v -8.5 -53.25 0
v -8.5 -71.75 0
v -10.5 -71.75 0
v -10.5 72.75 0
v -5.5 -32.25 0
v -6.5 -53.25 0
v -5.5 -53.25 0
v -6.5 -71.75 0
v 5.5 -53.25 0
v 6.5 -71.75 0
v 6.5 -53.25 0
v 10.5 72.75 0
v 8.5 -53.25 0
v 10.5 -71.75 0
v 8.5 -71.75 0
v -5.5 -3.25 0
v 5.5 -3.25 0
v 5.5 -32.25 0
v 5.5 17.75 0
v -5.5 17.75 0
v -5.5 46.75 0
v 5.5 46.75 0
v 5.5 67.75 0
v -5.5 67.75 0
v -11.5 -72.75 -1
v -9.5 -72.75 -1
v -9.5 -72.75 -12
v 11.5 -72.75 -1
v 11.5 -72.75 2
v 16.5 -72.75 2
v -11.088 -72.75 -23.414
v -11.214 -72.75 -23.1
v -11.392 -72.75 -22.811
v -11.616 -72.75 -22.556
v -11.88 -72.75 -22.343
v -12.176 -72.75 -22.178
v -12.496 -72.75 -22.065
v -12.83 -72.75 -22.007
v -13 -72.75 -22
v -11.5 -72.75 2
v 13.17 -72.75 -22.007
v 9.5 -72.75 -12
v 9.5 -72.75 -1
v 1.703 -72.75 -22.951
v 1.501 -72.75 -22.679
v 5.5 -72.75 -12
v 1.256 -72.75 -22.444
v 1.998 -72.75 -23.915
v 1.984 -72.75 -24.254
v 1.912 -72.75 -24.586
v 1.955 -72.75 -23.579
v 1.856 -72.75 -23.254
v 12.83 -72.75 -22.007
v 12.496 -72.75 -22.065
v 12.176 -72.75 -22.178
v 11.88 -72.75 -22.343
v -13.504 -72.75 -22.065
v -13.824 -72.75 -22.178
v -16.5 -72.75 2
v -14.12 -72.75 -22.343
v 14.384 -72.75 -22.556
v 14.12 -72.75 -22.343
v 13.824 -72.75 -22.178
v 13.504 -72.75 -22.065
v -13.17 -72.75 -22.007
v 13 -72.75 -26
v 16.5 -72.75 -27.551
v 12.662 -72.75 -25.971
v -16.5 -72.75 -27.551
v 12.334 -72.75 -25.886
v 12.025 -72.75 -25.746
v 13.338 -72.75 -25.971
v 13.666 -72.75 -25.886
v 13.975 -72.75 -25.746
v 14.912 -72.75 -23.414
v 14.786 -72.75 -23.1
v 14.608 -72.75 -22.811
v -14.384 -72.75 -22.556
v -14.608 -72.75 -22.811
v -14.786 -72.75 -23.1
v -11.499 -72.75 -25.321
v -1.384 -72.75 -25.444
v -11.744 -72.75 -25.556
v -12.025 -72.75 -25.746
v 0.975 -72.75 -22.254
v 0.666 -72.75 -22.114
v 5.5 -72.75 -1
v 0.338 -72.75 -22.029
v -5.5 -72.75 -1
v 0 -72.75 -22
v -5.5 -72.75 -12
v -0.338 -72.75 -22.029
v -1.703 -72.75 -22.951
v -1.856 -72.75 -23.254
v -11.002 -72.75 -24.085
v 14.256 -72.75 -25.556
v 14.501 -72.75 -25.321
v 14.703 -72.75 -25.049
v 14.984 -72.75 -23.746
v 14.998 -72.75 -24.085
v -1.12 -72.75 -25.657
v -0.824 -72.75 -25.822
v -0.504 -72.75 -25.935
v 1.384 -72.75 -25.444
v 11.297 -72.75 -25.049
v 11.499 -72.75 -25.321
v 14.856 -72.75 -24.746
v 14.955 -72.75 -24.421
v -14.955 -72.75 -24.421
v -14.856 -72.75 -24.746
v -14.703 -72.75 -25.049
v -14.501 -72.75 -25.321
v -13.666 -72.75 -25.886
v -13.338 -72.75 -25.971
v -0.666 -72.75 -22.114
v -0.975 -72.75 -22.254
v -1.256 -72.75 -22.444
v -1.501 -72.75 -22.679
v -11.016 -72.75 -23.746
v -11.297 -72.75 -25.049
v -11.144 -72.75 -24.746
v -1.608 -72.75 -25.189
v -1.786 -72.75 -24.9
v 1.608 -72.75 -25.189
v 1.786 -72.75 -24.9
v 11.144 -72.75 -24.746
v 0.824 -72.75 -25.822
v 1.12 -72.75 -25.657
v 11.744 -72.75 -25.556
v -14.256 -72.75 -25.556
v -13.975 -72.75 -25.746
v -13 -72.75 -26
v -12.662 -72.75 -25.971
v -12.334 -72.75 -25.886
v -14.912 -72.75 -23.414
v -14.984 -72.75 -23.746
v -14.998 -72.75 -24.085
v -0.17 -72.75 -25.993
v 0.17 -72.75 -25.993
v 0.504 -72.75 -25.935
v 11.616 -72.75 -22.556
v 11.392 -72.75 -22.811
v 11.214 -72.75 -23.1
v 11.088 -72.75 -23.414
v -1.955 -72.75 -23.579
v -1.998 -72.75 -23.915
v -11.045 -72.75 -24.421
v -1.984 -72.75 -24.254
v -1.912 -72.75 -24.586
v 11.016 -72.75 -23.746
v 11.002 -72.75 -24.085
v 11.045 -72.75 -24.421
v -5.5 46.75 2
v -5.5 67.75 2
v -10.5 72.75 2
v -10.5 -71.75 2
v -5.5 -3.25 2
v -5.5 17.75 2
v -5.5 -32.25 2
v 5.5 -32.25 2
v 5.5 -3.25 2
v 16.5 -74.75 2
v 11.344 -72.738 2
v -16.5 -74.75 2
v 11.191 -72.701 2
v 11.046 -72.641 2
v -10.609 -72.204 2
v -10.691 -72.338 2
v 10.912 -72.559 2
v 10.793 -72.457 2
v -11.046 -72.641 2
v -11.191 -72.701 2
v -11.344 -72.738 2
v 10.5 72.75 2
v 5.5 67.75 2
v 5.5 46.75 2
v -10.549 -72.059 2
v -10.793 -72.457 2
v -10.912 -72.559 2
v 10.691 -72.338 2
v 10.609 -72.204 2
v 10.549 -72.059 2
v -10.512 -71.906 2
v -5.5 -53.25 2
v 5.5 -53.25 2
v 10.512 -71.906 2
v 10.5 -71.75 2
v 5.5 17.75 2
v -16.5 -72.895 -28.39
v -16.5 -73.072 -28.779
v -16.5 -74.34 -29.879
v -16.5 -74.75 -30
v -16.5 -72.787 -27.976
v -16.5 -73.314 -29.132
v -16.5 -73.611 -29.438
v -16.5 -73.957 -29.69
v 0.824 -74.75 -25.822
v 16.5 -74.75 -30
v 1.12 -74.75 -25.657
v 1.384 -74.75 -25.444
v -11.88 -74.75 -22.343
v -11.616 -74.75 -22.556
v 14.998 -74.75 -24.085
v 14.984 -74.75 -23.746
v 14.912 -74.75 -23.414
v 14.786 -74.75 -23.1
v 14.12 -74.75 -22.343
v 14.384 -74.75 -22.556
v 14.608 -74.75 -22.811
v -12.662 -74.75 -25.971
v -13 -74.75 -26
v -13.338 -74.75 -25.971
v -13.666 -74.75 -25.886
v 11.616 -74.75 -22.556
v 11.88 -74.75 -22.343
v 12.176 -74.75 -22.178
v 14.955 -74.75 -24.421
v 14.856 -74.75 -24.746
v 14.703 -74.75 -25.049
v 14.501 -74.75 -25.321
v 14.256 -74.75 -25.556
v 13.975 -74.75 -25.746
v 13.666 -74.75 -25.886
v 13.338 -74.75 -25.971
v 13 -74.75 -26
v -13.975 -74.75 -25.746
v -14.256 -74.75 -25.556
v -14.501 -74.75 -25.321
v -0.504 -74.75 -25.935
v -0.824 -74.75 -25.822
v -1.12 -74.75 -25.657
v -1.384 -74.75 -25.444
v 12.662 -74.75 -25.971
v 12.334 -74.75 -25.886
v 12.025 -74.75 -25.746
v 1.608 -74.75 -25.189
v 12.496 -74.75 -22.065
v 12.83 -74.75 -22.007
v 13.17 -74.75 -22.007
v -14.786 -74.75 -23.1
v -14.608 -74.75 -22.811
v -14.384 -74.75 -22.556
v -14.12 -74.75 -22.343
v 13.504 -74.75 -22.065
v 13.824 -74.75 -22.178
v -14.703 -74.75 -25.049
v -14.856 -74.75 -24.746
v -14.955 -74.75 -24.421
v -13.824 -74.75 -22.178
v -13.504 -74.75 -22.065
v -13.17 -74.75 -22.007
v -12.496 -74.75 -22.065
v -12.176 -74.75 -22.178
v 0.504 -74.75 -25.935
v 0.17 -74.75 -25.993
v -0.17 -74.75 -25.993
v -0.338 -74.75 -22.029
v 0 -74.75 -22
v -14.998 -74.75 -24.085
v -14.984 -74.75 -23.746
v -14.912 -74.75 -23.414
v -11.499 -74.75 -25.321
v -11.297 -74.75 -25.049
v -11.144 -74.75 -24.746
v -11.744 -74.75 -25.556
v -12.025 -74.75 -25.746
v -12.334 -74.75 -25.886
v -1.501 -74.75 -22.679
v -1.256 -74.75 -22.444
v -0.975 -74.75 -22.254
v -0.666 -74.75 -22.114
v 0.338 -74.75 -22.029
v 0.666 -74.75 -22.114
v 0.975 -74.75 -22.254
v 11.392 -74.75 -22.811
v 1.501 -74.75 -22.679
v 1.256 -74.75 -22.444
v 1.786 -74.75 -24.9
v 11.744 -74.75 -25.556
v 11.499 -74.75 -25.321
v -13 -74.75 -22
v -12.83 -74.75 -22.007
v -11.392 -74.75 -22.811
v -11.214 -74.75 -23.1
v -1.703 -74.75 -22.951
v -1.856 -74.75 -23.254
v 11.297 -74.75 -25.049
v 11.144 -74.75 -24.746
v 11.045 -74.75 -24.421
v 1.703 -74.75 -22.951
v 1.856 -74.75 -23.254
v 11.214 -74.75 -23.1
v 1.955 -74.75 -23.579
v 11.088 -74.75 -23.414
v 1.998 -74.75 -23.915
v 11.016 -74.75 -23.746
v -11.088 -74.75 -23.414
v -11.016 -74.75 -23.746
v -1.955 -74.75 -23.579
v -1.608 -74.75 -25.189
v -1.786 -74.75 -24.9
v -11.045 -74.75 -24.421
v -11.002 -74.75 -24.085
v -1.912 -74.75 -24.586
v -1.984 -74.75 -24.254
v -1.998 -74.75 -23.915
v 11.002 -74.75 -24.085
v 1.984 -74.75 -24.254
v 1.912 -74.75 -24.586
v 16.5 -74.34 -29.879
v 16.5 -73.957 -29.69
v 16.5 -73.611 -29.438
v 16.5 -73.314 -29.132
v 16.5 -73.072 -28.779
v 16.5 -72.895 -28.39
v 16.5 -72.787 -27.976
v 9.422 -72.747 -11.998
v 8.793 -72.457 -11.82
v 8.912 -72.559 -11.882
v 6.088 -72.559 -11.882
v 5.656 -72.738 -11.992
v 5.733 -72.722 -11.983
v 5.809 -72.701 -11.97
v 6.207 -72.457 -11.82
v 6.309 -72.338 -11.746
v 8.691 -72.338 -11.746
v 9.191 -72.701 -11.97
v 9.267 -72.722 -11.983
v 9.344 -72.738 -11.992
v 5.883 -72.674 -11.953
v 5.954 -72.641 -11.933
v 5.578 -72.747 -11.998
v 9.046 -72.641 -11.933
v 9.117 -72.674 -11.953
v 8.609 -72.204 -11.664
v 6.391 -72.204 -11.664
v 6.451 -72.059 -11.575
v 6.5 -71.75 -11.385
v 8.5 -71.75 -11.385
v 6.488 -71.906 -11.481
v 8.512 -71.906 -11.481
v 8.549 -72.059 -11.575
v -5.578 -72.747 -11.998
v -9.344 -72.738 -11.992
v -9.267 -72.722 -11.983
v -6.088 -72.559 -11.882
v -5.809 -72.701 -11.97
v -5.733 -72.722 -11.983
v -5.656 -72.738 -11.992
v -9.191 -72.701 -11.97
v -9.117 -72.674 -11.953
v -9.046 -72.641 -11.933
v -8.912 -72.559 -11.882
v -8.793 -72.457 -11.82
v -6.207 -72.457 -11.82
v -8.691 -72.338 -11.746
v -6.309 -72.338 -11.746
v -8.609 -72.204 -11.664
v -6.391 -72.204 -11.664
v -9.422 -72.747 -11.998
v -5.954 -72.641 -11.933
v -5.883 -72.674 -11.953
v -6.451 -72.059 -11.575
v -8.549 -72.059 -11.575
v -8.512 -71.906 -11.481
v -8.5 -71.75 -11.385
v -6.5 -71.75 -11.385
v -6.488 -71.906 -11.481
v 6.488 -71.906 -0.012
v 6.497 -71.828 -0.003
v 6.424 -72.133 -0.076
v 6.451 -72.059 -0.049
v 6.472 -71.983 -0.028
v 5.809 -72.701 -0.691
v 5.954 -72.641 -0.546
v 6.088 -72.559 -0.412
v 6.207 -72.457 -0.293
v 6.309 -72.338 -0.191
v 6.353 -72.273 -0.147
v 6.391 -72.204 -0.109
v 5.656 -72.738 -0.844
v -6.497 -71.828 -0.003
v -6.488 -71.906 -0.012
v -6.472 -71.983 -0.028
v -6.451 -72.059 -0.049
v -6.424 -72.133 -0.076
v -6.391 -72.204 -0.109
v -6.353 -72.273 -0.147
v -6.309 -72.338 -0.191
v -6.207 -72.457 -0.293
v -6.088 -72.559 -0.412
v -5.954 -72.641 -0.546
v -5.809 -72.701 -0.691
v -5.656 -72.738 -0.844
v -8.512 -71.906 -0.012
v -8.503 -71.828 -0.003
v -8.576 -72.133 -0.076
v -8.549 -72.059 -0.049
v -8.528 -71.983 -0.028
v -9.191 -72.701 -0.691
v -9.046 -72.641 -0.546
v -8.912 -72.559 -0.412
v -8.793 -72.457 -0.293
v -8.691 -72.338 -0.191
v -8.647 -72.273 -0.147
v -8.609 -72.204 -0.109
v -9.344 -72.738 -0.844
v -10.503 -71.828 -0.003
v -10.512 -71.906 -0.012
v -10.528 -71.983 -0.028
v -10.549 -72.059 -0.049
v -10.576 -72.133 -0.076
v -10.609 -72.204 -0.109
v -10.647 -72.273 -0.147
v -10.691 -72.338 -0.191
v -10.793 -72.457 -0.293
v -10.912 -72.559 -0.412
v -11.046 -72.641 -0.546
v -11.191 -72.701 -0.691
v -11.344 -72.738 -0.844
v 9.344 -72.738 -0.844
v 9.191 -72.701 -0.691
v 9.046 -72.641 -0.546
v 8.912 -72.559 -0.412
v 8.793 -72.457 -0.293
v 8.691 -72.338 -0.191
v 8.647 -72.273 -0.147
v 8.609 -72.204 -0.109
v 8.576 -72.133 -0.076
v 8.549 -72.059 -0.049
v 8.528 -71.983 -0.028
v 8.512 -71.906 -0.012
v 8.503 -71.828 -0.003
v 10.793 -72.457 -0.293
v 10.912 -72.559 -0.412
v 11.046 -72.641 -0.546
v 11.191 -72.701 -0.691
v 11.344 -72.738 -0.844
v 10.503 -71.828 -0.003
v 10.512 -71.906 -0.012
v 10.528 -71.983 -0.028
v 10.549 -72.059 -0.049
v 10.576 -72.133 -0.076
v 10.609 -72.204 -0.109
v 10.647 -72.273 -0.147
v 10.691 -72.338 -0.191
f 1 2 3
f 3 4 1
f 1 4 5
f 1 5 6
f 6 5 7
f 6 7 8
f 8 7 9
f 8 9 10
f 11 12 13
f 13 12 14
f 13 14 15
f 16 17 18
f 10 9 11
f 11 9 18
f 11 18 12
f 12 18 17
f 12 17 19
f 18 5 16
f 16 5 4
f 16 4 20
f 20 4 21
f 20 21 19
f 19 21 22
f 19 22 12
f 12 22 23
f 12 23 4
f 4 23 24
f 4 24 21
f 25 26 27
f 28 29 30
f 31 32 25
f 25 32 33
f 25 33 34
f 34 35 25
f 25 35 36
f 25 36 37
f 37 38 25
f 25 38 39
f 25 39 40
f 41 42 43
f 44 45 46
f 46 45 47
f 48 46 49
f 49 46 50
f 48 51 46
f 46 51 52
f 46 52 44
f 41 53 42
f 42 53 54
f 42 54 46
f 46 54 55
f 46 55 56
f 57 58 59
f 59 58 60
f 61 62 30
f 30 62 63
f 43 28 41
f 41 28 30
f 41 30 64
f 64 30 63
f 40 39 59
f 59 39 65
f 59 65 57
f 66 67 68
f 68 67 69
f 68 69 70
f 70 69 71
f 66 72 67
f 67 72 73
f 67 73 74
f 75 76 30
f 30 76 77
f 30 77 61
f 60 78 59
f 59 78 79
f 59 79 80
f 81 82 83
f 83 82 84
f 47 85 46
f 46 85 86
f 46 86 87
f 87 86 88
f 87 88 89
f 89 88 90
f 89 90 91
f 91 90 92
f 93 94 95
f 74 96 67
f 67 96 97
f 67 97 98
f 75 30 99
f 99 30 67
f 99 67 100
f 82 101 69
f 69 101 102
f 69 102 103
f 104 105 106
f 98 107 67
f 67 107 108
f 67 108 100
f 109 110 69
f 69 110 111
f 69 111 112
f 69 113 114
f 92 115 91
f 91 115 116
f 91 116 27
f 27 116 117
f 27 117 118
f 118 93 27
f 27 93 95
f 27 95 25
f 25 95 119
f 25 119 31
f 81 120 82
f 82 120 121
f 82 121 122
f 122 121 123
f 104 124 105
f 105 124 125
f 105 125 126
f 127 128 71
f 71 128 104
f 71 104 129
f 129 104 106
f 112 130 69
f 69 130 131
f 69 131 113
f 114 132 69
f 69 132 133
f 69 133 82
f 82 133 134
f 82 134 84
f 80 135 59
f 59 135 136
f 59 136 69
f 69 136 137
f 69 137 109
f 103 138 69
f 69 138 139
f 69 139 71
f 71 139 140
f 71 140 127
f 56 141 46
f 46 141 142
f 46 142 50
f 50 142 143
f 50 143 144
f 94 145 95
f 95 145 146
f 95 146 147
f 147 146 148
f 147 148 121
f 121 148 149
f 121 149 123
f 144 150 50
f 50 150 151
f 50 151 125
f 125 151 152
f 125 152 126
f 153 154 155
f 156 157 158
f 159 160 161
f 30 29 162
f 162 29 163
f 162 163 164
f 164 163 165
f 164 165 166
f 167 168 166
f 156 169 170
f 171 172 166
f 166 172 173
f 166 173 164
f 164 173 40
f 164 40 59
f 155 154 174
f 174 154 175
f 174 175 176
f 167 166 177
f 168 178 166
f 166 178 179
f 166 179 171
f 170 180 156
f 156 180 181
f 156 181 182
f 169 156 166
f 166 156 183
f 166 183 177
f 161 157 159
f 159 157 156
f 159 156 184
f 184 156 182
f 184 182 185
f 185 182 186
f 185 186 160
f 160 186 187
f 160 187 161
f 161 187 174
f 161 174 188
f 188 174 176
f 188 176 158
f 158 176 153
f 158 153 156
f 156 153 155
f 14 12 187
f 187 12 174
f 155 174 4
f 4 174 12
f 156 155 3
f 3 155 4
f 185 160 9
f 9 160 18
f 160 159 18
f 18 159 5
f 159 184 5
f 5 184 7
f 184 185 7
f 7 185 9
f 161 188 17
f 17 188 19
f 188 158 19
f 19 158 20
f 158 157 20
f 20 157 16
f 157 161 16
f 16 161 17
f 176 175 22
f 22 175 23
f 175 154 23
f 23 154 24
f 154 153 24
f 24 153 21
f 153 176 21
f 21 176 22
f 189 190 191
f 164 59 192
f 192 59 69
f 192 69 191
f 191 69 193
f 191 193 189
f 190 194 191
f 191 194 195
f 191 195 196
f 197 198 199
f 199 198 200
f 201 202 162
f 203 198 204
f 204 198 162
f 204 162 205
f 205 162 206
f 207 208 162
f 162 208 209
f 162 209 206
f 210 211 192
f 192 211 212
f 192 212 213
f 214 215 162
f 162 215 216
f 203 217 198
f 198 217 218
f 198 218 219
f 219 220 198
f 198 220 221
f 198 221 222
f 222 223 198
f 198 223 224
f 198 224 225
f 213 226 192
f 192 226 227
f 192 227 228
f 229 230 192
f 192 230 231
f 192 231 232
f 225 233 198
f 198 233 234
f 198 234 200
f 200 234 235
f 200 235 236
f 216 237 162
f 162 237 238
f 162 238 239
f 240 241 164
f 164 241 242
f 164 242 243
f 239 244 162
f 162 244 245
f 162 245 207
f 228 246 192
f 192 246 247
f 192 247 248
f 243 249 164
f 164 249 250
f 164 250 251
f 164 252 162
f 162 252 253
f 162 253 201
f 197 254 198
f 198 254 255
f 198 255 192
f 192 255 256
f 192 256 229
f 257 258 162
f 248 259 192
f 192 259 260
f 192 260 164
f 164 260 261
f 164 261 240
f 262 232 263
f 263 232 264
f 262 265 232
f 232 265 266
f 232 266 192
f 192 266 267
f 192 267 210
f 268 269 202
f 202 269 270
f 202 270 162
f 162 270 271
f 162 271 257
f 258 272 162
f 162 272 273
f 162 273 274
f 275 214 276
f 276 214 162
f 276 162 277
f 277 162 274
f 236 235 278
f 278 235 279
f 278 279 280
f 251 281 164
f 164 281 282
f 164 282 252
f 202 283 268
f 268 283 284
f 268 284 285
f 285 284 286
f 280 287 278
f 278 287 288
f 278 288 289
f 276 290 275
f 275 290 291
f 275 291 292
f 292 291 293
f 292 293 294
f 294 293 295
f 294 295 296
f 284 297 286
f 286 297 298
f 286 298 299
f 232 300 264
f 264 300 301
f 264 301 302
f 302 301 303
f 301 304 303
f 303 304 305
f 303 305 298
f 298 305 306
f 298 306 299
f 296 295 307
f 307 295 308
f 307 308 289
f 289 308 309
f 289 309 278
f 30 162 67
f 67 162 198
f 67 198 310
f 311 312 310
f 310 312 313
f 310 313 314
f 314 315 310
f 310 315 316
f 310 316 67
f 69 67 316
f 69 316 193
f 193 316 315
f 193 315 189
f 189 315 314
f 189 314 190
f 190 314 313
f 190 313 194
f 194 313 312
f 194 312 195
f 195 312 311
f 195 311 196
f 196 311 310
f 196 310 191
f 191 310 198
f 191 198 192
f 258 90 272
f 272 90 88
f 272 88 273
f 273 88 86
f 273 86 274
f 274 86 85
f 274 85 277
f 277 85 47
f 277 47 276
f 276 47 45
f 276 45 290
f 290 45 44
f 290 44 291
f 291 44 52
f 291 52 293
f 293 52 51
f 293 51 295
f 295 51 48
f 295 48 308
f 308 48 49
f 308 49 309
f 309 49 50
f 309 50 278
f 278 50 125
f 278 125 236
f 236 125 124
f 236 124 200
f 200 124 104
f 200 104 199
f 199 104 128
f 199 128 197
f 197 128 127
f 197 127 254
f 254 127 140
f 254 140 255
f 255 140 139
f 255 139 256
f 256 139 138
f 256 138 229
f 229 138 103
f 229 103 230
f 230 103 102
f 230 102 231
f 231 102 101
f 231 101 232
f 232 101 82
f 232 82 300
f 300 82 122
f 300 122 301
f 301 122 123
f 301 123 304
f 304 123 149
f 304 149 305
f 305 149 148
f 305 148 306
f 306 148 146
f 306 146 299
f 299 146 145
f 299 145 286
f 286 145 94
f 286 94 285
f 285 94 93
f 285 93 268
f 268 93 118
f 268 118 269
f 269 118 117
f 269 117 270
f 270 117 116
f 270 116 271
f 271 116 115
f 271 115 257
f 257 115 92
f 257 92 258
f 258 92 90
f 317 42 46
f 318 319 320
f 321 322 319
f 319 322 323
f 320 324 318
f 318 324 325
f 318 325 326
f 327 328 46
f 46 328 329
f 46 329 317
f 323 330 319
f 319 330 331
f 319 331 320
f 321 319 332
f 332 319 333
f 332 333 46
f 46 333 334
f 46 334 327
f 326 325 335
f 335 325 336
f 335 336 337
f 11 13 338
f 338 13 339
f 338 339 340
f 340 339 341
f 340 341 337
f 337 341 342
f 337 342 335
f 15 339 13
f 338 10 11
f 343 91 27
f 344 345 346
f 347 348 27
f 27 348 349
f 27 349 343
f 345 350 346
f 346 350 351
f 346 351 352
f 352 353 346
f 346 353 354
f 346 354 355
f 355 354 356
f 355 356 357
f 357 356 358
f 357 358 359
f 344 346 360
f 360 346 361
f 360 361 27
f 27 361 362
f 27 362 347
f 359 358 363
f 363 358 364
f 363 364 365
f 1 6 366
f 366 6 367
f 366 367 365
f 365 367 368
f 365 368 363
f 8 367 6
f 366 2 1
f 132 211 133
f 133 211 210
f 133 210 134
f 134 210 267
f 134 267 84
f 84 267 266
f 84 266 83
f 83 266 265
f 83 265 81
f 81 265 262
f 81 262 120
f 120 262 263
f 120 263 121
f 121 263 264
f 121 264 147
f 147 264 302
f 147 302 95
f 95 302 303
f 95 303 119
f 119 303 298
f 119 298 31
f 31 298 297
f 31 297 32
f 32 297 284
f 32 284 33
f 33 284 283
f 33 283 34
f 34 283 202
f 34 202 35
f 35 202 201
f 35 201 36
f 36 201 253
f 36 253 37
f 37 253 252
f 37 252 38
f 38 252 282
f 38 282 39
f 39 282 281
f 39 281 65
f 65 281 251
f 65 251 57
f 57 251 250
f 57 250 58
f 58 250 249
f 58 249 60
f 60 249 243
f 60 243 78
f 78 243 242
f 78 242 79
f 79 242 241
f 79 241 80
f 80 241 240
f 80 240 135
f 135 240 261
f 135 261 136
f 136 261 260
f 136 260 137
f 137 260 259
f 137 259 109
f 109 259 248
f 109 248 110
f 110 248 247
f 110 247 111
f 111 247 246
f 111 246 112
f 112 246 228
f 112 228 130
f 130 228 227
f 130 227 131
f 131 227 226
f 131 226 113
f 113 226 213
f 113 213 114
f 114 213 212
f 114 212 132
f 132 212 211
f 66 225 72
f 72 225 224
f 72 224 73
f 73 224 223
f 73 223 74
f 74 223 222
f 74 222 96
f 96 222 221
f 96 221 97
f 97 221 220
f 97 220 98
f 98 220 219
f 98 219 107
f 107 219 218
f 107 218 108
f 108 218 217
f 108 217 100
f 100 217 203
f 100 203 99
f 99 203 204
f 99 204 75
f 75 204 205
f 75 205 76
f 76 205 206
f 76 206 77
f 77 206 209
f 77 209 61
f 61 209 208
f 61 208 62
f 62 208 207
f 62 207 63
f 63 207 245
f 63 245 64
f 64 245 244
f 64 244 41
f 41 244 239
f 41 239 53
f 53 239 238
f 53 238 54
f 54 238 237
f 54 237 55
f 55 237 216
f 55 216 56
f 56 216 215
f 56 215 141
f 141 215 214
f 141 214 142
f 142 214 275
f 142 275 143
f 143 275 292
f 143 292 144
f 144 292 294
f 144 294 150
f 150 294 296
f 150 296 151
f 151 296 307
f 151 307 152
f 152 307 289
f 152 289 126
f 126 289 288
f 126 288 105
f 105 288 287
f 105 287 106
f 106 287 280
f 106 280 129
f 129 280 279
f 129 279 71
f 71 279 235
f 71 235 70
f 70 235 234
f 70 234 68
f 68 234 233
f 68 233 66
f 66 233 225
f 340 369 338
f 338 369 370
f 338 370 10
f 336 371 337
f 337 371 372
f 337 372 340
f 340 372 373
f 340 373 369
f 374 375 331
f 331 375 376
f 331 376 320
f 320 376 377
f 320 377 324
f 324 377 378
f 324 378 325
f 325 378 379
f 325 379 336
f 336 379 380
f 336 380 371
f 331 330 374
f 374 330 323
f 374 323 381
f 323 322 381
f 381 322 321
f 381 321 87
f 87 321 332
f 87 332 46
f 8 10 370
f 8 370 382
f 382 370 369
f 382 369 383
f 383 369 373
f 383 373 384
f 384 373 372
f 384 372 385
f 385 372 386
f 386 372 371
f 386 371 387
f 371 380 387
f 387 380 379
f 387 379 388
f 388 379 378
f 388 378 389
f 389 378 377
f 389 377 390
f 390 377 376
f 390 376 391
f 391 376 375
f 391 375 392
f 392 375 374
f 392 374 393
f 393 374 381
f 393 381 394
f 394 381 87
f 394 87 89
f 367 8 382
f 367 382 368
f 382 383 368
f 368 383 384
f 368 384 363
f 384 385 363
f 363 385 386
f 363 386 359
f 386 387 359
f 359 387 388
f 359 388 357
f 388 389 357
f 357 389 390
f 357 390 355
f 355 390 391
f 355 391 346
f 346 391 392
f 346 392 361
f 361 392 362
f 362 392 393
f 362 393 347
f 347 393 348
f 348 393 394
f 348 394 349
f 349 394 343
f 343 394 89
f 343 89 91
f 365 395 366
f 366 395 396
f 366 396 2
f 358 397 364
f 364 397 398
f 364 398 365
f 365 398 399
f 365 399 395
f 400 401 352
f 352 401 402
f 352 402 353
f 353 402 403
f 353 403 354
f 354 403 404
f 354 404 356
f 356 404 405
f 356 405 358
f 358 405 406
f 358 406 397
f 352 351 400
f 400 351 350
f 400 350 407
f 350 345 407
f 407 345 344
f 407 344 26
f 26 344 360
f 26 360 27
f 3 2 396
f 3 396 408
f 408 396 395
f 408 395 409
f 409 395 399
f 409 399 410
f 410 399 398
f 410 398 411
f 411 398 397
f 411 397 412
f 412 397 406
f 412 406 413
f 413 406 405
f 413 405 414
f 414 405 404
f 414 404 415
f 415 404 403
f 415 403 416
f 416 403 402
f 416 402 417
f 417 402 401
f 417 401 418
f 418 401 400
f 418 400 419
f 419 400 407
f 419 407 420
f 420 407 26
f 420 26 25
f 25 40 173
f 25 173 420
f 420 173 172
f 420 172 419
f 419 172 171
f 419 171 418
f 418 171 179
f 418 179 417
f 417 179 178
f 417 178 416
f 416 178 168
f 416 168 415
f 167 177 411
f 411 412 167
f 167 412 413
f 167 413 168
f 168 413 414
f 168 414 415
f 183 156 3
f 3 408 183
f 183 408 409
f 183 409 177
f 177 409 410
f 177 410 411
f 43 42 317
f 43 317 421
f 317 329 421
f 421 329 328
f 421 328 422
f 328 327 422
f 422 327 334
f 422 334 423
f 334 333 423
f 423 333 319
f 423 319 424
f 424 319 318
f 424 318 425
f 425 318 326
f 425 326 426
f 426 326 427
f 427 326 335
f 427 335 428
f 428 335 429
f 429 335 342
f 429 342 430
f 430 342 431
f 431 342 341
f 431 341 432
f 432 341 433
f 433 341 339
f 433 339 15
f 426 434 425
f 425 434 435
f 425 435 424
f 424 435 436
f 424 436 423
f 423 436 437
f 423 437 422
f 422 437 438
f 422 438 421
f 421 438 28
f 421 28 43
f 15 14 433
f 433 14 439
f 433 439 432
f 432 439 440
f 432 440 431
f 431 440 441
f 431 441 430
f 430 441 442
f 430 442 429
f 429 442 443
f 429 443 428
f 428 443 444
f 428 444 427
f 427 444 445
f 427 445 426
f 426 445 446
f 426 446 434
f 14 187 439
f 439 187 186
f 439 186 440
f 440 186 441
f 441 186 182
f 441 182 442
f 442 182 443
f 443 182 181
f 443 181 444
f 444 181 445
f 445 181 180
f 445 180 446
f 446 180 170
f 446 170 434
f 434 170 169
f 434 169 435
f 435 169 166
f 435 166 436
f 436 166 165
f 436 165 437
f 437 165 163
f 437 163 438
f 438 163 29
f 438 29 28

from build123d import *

# Parameters (mm, degrees)
SKETCH1_W                = 21
SKETCH1_H                = 145.5
SKETCH1_W_2              = 11
SKETCH1_H_2              = 21
BOSS_EXTRUDE1_DEPTH      = 2
BOSS_EXTRUDE2_DEPTH      = 30
BOSS_EXTRUDE2_DEPTH_BACK = 2
FILLET2_R                = 2.5
SKETCH6_R                = 2
CUT_EXTRUDE1_DEPTH       = 2
BOSS_EXTRUDE5_DEPTH      = 1
BOSS_EXTRUDE6_DEPTH      = 1
SKETCH9_R                = 2
CUT_EXTRUDE2_DEPTH       = 2
FILLET3_R                = 1


with BuildPart() as part:
    # Sketch1 → Boss-Extrude1 (new body)
    with BuildSketch(Plane.XY):
        Rectangle(SKETCH1_W, SKETCH1_H)
        with Locations((0, -42.75)):
            Rectangle(SKETCH1_W_2, SKETCH1_H_2, mode=Mode.SUBTRACT)
        with Locations((0, 7.25)):
            Rectangle(SKETCH1_W_2, SKETCH1_H_2, mode=Mode.SUBTRACT)
        with Locations((0, 57.25)):
            Rectangle(SKETCH1_W_2, SKETCH1_H_2, mode=Mode.SUBTRACT)
    extrude(amount=BOSS_EXTRUDE1_DEPTH)

    # Sketch2 → Boss-Extrude2 (add, two sides: drawn at the far end of the back side and taken through both)
    with BuildSketch(Plane(origin=(0, 0, 0), x_dir=(-1, 0, 0), z_dir=(0, 0, -1)).offset(-BOSS_EXTRUDE2_DEPTH_BACK)):
        Polygon((10.5, -72.75), (16.5, -72.75), (16.5, -74.75), (-16.5, -74.75), (-16.5, -72.75), align=None)
    extrude(amount=BOSS_EXTRUDE2_DEPTH + BOSS_EXTRUDE2_DEPTH_BACK)

    # Fillet2
    # the kernel refuses this fillet: 2.5 mm, written as the material it takes off along each edge
    with BuildSketch(Plane(origin=(22.623724357, -72.75, -30), x_dir=(0, 0, 1), z_dir=(-1, 0, 0))) as fillet2_piece_1:
        with BuildLine():
            CenterArc((2.449489743, -2.5), FILLET2_R, 90, 78.463040967)
            Line((0, -2), (-0.048989795, -1.99))
            ThreePointArc((-0.048989795, -1.99), (-0.05, -1), (-0.05, 0))
            Line((-0.05, 0), (0, 0.05))
            Line((0, 0.05), (2.449489743, 0.05))
            Line((2.449489743, 0.05), (2.449489743, 0))
        make_face()
    extrude(amount=45.247448714, mode=Mode.SUBTRACT)

    # Sketch6 → Cut-Extrude1 (cut)
    with BuildSketch(Plane(origin=(0, -72.75, 0), x_dir=(1, 0, 0), z_dir=(0, 1, 0))):
        with Locations(Location((0, 24, 0), (0, 0, 270))):
            Circle(SKETCH6_R)
    extrude(amount=-CUT_EXTRUDE1_DEPTH, mode=Mode.SUBTRACT)

    # Sketch7 → Boss-Extrude5 (add, symmetric)
    with BuildSketch(Plane(origin=(7.5, 0, 0), x_dir=(0, 0, -1), z_dir=(1, 0, 0))):
        Polygon((0, -53.25), (12, -72.75), (0, -72.75), align=None)
    extrude(amount=BOSS_EXTRUDE5_DEPTH, both=True)

    # Sketch8 → Boss-Extrude6 (add, symmetric)
    with BuildSketch(Plane(origin=(-7.5, 0, 0), x_dir=(0, 0, -1), z_dir=(1, 0, 0))):
        Polygon((12, -72.75), (0, -53.25), (0, -72.75), align=None)
    extrude(amount=BOSS_EXTRUDE6_DEPTH, both=True)

    # Sketch9 → Cut-Extrude2 (cut)
    with BuildSketch(Plane.XZ.offset(74.75)):
        with Locations(Location((13, -24, 0), (0, 0, 270))):
            Circle(SKETCH9_R)
        with Locations(Location((-13, -24, 0), (0, 0, 90))):
            Circle(SKETCH9_R)
    extrude(amount=-CUT_EXTRUDE2_DEPTH, mode=Mode.SUBTRACT)

    # Fillet3
    fillet3_edges = [part.edges().sort_by_distance(p)[0] for p in [
        (-9.5, -72.75, 0),
        (10.5, -72.75, 1),
        (-10.5, -72.75, 1),
        (9.5, -72.75, 0),
        (6.5, -72.75, -6),
        (8.5, -72.75, -6),
        (0, -72.75, 0),
        (-8.5, -72.75, -6),
        (-6.5, -72.75, -6),
    ]]
    fillet(fillet3_edges, radius=FILLET3_R)


solid = part.part
